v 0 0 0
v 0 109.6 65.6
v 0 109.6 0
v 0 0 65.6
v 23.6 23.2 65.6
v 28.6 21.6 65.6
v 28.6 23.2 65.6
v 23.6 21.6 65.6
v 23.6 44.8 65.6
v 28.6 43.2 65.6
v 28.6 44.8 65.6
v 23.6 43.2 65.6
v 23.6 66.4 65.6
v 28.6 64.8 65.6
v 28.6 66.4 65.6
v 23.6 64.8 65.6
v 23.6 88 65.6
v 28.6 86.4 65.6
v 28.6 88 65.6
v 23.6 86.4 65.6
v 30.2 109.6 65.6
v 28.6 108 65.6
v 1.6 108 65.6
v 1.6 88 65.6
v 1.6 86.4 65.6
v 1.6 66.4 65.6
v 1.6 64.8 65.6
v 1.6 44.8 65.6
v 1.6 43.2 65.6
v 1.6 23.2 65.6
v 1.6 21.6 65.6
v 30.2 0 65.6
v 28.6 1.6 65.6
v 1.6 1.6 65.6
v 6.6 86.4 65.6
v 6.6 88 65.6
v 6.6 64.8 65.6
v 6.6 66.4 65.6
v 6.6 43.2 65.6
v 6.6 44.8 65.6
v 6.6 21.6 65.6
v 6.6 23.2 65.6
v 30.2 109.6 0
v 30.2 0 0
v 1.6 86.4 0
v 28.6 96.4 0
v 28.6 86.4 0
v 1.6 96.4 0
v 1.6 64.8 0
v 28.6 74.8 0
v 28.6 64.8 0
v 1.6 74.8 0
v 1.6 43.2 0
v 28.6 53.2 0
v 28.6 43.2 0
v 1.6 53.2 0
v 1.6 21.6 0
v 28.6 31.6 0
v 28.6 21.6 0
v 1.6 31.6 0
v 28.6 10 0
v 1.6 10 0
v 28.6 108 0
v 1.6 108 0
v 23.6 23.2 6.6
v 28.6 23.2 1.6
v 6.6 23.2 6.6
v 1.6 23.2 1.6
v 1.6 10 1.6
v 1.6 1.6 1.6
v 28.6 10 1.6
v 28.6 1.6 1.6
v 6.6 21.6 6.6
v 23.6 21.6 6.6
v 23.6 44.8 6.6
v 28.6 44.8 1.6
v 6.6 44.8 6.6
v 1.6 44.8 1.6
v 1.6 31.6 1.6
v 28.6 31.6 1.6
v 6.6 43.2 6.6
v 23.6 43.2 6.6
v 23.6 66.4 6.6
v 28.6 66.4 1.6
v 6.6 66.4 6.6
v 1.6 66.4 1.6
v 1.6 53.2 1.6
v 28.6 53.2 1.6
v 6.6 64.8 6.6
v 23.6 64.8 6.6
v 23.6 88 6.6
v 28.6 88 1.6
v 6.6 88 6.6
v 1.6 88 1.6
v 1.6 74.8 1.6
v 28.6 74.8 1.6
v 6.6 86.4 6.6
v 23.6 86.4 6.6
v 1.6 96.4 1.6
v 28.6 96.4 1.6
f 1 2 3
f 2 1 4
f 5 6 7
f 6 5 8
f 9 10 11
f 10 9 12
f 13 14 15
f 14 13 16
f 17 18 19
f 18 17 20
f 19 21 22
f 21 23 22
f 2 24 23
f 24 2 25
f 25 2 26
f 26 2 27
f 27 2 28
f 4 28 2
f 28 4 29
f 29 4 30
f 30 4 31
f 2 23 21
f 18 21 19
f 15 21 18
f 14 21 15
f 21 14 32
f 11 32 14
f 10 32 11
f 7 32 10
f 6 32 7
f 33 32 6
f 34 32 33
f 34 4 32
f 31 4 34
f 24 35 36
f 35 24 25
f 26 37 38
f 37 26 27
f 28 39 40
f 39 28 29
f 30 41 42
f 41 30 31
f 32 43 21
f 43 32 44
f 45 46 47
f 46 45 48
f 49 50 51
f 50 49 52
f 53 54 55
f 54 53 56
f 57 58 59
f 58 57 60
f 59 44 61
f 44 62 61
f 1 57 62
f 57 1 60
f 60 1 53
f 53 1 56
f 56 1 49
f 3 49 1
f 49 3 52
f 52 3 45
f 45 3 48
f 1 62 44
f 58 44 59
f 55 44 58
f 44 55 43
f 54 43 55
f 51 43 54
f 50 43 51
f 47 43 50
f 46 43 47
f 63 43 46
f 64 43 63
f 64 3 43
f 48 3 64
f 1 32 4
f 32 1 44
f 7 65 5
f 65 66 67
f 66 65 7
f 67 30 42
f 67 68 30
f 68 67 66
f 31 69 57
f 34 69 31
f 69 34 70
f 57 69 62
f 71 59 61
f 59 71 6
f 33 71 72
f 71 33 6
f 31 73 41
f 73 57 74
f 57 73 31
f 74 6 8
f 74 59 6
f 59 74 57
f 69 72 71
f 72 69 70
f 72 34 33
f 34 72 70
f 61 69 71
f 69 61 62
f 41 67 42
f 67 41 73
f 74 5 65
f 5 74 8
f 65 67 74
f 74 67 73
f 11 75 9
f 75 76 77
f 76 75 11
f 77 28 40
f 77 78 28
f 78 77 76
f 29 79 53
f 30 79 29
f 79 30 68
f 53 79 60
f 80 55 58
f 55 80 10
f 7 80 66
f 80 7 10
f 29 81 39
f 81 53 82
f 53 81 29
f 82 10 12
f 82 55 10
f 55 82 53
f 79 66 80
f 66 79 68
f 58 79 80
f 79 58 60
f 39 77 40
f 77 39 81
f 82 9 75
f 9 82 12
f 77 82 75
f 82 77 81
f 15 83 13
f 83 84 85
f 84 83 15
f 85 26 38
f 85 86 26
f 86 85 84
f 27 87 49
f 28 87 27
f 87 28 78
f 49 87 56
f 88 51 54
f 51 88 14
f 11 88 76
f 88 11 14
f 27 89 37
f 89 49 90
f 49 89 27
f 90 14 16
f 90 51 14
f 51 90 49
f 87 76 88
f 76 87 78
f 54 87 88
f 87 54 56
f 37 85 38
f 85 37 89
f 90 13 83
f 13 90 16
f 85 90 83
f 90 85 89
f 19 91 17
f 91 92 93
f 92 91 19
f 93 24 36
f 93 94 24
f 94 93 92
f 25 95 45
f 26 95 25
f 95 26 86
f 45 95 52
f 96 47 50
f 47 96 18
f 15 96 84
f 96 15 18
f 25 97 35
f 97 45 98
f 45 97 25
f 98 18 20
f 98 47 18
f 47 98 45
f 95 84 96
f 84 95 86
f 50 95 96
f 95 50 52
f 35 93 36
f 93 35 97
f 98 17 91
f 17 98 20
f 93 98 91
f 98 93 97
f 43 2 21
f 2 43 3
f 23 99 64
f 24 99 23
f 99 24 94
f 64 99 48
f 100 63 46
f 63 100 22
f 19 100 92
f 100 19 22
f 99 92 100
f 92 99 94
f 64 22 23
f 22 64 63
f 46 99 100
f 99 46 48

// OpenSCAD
case_x = 27;
case_y = 20;
case_z = 64;

thick = 1.6;


module case(top=false,bottom=false) {
	difference() {
		cube([case_x+2*thick,case_y+2*thick,case_z+thick]);
		translate([thick,thick,thick]) {
			cube([case_x,case_y,case_z+10]);
		}
		translate([thick,case_y/2,-thick]) {
			cube([case_x,case_y/2+thick,10]);
		}
		if(!bottom) {
			translate([thick+5,-thick,thick+5]) {
				cube([case_x-10,5*thick,case_z]);
			}
		}
		if(!top) {
			translate([thick+5,case_y,thick+5]) {
				cube([case_x-10,5*thick,case_z]);
			}
		}
	}
}

case(bottom=true);
translate([0,case_y+thick,0]) {
	case();	
}
translate([0,2*(case_y+thick),0]) {
	case();	
}
translate([0,3*(case_y+thick),0]) {
	case();	
}
translate([0,4*(case_y+thick),0]) {
	case(top=true);	
}
